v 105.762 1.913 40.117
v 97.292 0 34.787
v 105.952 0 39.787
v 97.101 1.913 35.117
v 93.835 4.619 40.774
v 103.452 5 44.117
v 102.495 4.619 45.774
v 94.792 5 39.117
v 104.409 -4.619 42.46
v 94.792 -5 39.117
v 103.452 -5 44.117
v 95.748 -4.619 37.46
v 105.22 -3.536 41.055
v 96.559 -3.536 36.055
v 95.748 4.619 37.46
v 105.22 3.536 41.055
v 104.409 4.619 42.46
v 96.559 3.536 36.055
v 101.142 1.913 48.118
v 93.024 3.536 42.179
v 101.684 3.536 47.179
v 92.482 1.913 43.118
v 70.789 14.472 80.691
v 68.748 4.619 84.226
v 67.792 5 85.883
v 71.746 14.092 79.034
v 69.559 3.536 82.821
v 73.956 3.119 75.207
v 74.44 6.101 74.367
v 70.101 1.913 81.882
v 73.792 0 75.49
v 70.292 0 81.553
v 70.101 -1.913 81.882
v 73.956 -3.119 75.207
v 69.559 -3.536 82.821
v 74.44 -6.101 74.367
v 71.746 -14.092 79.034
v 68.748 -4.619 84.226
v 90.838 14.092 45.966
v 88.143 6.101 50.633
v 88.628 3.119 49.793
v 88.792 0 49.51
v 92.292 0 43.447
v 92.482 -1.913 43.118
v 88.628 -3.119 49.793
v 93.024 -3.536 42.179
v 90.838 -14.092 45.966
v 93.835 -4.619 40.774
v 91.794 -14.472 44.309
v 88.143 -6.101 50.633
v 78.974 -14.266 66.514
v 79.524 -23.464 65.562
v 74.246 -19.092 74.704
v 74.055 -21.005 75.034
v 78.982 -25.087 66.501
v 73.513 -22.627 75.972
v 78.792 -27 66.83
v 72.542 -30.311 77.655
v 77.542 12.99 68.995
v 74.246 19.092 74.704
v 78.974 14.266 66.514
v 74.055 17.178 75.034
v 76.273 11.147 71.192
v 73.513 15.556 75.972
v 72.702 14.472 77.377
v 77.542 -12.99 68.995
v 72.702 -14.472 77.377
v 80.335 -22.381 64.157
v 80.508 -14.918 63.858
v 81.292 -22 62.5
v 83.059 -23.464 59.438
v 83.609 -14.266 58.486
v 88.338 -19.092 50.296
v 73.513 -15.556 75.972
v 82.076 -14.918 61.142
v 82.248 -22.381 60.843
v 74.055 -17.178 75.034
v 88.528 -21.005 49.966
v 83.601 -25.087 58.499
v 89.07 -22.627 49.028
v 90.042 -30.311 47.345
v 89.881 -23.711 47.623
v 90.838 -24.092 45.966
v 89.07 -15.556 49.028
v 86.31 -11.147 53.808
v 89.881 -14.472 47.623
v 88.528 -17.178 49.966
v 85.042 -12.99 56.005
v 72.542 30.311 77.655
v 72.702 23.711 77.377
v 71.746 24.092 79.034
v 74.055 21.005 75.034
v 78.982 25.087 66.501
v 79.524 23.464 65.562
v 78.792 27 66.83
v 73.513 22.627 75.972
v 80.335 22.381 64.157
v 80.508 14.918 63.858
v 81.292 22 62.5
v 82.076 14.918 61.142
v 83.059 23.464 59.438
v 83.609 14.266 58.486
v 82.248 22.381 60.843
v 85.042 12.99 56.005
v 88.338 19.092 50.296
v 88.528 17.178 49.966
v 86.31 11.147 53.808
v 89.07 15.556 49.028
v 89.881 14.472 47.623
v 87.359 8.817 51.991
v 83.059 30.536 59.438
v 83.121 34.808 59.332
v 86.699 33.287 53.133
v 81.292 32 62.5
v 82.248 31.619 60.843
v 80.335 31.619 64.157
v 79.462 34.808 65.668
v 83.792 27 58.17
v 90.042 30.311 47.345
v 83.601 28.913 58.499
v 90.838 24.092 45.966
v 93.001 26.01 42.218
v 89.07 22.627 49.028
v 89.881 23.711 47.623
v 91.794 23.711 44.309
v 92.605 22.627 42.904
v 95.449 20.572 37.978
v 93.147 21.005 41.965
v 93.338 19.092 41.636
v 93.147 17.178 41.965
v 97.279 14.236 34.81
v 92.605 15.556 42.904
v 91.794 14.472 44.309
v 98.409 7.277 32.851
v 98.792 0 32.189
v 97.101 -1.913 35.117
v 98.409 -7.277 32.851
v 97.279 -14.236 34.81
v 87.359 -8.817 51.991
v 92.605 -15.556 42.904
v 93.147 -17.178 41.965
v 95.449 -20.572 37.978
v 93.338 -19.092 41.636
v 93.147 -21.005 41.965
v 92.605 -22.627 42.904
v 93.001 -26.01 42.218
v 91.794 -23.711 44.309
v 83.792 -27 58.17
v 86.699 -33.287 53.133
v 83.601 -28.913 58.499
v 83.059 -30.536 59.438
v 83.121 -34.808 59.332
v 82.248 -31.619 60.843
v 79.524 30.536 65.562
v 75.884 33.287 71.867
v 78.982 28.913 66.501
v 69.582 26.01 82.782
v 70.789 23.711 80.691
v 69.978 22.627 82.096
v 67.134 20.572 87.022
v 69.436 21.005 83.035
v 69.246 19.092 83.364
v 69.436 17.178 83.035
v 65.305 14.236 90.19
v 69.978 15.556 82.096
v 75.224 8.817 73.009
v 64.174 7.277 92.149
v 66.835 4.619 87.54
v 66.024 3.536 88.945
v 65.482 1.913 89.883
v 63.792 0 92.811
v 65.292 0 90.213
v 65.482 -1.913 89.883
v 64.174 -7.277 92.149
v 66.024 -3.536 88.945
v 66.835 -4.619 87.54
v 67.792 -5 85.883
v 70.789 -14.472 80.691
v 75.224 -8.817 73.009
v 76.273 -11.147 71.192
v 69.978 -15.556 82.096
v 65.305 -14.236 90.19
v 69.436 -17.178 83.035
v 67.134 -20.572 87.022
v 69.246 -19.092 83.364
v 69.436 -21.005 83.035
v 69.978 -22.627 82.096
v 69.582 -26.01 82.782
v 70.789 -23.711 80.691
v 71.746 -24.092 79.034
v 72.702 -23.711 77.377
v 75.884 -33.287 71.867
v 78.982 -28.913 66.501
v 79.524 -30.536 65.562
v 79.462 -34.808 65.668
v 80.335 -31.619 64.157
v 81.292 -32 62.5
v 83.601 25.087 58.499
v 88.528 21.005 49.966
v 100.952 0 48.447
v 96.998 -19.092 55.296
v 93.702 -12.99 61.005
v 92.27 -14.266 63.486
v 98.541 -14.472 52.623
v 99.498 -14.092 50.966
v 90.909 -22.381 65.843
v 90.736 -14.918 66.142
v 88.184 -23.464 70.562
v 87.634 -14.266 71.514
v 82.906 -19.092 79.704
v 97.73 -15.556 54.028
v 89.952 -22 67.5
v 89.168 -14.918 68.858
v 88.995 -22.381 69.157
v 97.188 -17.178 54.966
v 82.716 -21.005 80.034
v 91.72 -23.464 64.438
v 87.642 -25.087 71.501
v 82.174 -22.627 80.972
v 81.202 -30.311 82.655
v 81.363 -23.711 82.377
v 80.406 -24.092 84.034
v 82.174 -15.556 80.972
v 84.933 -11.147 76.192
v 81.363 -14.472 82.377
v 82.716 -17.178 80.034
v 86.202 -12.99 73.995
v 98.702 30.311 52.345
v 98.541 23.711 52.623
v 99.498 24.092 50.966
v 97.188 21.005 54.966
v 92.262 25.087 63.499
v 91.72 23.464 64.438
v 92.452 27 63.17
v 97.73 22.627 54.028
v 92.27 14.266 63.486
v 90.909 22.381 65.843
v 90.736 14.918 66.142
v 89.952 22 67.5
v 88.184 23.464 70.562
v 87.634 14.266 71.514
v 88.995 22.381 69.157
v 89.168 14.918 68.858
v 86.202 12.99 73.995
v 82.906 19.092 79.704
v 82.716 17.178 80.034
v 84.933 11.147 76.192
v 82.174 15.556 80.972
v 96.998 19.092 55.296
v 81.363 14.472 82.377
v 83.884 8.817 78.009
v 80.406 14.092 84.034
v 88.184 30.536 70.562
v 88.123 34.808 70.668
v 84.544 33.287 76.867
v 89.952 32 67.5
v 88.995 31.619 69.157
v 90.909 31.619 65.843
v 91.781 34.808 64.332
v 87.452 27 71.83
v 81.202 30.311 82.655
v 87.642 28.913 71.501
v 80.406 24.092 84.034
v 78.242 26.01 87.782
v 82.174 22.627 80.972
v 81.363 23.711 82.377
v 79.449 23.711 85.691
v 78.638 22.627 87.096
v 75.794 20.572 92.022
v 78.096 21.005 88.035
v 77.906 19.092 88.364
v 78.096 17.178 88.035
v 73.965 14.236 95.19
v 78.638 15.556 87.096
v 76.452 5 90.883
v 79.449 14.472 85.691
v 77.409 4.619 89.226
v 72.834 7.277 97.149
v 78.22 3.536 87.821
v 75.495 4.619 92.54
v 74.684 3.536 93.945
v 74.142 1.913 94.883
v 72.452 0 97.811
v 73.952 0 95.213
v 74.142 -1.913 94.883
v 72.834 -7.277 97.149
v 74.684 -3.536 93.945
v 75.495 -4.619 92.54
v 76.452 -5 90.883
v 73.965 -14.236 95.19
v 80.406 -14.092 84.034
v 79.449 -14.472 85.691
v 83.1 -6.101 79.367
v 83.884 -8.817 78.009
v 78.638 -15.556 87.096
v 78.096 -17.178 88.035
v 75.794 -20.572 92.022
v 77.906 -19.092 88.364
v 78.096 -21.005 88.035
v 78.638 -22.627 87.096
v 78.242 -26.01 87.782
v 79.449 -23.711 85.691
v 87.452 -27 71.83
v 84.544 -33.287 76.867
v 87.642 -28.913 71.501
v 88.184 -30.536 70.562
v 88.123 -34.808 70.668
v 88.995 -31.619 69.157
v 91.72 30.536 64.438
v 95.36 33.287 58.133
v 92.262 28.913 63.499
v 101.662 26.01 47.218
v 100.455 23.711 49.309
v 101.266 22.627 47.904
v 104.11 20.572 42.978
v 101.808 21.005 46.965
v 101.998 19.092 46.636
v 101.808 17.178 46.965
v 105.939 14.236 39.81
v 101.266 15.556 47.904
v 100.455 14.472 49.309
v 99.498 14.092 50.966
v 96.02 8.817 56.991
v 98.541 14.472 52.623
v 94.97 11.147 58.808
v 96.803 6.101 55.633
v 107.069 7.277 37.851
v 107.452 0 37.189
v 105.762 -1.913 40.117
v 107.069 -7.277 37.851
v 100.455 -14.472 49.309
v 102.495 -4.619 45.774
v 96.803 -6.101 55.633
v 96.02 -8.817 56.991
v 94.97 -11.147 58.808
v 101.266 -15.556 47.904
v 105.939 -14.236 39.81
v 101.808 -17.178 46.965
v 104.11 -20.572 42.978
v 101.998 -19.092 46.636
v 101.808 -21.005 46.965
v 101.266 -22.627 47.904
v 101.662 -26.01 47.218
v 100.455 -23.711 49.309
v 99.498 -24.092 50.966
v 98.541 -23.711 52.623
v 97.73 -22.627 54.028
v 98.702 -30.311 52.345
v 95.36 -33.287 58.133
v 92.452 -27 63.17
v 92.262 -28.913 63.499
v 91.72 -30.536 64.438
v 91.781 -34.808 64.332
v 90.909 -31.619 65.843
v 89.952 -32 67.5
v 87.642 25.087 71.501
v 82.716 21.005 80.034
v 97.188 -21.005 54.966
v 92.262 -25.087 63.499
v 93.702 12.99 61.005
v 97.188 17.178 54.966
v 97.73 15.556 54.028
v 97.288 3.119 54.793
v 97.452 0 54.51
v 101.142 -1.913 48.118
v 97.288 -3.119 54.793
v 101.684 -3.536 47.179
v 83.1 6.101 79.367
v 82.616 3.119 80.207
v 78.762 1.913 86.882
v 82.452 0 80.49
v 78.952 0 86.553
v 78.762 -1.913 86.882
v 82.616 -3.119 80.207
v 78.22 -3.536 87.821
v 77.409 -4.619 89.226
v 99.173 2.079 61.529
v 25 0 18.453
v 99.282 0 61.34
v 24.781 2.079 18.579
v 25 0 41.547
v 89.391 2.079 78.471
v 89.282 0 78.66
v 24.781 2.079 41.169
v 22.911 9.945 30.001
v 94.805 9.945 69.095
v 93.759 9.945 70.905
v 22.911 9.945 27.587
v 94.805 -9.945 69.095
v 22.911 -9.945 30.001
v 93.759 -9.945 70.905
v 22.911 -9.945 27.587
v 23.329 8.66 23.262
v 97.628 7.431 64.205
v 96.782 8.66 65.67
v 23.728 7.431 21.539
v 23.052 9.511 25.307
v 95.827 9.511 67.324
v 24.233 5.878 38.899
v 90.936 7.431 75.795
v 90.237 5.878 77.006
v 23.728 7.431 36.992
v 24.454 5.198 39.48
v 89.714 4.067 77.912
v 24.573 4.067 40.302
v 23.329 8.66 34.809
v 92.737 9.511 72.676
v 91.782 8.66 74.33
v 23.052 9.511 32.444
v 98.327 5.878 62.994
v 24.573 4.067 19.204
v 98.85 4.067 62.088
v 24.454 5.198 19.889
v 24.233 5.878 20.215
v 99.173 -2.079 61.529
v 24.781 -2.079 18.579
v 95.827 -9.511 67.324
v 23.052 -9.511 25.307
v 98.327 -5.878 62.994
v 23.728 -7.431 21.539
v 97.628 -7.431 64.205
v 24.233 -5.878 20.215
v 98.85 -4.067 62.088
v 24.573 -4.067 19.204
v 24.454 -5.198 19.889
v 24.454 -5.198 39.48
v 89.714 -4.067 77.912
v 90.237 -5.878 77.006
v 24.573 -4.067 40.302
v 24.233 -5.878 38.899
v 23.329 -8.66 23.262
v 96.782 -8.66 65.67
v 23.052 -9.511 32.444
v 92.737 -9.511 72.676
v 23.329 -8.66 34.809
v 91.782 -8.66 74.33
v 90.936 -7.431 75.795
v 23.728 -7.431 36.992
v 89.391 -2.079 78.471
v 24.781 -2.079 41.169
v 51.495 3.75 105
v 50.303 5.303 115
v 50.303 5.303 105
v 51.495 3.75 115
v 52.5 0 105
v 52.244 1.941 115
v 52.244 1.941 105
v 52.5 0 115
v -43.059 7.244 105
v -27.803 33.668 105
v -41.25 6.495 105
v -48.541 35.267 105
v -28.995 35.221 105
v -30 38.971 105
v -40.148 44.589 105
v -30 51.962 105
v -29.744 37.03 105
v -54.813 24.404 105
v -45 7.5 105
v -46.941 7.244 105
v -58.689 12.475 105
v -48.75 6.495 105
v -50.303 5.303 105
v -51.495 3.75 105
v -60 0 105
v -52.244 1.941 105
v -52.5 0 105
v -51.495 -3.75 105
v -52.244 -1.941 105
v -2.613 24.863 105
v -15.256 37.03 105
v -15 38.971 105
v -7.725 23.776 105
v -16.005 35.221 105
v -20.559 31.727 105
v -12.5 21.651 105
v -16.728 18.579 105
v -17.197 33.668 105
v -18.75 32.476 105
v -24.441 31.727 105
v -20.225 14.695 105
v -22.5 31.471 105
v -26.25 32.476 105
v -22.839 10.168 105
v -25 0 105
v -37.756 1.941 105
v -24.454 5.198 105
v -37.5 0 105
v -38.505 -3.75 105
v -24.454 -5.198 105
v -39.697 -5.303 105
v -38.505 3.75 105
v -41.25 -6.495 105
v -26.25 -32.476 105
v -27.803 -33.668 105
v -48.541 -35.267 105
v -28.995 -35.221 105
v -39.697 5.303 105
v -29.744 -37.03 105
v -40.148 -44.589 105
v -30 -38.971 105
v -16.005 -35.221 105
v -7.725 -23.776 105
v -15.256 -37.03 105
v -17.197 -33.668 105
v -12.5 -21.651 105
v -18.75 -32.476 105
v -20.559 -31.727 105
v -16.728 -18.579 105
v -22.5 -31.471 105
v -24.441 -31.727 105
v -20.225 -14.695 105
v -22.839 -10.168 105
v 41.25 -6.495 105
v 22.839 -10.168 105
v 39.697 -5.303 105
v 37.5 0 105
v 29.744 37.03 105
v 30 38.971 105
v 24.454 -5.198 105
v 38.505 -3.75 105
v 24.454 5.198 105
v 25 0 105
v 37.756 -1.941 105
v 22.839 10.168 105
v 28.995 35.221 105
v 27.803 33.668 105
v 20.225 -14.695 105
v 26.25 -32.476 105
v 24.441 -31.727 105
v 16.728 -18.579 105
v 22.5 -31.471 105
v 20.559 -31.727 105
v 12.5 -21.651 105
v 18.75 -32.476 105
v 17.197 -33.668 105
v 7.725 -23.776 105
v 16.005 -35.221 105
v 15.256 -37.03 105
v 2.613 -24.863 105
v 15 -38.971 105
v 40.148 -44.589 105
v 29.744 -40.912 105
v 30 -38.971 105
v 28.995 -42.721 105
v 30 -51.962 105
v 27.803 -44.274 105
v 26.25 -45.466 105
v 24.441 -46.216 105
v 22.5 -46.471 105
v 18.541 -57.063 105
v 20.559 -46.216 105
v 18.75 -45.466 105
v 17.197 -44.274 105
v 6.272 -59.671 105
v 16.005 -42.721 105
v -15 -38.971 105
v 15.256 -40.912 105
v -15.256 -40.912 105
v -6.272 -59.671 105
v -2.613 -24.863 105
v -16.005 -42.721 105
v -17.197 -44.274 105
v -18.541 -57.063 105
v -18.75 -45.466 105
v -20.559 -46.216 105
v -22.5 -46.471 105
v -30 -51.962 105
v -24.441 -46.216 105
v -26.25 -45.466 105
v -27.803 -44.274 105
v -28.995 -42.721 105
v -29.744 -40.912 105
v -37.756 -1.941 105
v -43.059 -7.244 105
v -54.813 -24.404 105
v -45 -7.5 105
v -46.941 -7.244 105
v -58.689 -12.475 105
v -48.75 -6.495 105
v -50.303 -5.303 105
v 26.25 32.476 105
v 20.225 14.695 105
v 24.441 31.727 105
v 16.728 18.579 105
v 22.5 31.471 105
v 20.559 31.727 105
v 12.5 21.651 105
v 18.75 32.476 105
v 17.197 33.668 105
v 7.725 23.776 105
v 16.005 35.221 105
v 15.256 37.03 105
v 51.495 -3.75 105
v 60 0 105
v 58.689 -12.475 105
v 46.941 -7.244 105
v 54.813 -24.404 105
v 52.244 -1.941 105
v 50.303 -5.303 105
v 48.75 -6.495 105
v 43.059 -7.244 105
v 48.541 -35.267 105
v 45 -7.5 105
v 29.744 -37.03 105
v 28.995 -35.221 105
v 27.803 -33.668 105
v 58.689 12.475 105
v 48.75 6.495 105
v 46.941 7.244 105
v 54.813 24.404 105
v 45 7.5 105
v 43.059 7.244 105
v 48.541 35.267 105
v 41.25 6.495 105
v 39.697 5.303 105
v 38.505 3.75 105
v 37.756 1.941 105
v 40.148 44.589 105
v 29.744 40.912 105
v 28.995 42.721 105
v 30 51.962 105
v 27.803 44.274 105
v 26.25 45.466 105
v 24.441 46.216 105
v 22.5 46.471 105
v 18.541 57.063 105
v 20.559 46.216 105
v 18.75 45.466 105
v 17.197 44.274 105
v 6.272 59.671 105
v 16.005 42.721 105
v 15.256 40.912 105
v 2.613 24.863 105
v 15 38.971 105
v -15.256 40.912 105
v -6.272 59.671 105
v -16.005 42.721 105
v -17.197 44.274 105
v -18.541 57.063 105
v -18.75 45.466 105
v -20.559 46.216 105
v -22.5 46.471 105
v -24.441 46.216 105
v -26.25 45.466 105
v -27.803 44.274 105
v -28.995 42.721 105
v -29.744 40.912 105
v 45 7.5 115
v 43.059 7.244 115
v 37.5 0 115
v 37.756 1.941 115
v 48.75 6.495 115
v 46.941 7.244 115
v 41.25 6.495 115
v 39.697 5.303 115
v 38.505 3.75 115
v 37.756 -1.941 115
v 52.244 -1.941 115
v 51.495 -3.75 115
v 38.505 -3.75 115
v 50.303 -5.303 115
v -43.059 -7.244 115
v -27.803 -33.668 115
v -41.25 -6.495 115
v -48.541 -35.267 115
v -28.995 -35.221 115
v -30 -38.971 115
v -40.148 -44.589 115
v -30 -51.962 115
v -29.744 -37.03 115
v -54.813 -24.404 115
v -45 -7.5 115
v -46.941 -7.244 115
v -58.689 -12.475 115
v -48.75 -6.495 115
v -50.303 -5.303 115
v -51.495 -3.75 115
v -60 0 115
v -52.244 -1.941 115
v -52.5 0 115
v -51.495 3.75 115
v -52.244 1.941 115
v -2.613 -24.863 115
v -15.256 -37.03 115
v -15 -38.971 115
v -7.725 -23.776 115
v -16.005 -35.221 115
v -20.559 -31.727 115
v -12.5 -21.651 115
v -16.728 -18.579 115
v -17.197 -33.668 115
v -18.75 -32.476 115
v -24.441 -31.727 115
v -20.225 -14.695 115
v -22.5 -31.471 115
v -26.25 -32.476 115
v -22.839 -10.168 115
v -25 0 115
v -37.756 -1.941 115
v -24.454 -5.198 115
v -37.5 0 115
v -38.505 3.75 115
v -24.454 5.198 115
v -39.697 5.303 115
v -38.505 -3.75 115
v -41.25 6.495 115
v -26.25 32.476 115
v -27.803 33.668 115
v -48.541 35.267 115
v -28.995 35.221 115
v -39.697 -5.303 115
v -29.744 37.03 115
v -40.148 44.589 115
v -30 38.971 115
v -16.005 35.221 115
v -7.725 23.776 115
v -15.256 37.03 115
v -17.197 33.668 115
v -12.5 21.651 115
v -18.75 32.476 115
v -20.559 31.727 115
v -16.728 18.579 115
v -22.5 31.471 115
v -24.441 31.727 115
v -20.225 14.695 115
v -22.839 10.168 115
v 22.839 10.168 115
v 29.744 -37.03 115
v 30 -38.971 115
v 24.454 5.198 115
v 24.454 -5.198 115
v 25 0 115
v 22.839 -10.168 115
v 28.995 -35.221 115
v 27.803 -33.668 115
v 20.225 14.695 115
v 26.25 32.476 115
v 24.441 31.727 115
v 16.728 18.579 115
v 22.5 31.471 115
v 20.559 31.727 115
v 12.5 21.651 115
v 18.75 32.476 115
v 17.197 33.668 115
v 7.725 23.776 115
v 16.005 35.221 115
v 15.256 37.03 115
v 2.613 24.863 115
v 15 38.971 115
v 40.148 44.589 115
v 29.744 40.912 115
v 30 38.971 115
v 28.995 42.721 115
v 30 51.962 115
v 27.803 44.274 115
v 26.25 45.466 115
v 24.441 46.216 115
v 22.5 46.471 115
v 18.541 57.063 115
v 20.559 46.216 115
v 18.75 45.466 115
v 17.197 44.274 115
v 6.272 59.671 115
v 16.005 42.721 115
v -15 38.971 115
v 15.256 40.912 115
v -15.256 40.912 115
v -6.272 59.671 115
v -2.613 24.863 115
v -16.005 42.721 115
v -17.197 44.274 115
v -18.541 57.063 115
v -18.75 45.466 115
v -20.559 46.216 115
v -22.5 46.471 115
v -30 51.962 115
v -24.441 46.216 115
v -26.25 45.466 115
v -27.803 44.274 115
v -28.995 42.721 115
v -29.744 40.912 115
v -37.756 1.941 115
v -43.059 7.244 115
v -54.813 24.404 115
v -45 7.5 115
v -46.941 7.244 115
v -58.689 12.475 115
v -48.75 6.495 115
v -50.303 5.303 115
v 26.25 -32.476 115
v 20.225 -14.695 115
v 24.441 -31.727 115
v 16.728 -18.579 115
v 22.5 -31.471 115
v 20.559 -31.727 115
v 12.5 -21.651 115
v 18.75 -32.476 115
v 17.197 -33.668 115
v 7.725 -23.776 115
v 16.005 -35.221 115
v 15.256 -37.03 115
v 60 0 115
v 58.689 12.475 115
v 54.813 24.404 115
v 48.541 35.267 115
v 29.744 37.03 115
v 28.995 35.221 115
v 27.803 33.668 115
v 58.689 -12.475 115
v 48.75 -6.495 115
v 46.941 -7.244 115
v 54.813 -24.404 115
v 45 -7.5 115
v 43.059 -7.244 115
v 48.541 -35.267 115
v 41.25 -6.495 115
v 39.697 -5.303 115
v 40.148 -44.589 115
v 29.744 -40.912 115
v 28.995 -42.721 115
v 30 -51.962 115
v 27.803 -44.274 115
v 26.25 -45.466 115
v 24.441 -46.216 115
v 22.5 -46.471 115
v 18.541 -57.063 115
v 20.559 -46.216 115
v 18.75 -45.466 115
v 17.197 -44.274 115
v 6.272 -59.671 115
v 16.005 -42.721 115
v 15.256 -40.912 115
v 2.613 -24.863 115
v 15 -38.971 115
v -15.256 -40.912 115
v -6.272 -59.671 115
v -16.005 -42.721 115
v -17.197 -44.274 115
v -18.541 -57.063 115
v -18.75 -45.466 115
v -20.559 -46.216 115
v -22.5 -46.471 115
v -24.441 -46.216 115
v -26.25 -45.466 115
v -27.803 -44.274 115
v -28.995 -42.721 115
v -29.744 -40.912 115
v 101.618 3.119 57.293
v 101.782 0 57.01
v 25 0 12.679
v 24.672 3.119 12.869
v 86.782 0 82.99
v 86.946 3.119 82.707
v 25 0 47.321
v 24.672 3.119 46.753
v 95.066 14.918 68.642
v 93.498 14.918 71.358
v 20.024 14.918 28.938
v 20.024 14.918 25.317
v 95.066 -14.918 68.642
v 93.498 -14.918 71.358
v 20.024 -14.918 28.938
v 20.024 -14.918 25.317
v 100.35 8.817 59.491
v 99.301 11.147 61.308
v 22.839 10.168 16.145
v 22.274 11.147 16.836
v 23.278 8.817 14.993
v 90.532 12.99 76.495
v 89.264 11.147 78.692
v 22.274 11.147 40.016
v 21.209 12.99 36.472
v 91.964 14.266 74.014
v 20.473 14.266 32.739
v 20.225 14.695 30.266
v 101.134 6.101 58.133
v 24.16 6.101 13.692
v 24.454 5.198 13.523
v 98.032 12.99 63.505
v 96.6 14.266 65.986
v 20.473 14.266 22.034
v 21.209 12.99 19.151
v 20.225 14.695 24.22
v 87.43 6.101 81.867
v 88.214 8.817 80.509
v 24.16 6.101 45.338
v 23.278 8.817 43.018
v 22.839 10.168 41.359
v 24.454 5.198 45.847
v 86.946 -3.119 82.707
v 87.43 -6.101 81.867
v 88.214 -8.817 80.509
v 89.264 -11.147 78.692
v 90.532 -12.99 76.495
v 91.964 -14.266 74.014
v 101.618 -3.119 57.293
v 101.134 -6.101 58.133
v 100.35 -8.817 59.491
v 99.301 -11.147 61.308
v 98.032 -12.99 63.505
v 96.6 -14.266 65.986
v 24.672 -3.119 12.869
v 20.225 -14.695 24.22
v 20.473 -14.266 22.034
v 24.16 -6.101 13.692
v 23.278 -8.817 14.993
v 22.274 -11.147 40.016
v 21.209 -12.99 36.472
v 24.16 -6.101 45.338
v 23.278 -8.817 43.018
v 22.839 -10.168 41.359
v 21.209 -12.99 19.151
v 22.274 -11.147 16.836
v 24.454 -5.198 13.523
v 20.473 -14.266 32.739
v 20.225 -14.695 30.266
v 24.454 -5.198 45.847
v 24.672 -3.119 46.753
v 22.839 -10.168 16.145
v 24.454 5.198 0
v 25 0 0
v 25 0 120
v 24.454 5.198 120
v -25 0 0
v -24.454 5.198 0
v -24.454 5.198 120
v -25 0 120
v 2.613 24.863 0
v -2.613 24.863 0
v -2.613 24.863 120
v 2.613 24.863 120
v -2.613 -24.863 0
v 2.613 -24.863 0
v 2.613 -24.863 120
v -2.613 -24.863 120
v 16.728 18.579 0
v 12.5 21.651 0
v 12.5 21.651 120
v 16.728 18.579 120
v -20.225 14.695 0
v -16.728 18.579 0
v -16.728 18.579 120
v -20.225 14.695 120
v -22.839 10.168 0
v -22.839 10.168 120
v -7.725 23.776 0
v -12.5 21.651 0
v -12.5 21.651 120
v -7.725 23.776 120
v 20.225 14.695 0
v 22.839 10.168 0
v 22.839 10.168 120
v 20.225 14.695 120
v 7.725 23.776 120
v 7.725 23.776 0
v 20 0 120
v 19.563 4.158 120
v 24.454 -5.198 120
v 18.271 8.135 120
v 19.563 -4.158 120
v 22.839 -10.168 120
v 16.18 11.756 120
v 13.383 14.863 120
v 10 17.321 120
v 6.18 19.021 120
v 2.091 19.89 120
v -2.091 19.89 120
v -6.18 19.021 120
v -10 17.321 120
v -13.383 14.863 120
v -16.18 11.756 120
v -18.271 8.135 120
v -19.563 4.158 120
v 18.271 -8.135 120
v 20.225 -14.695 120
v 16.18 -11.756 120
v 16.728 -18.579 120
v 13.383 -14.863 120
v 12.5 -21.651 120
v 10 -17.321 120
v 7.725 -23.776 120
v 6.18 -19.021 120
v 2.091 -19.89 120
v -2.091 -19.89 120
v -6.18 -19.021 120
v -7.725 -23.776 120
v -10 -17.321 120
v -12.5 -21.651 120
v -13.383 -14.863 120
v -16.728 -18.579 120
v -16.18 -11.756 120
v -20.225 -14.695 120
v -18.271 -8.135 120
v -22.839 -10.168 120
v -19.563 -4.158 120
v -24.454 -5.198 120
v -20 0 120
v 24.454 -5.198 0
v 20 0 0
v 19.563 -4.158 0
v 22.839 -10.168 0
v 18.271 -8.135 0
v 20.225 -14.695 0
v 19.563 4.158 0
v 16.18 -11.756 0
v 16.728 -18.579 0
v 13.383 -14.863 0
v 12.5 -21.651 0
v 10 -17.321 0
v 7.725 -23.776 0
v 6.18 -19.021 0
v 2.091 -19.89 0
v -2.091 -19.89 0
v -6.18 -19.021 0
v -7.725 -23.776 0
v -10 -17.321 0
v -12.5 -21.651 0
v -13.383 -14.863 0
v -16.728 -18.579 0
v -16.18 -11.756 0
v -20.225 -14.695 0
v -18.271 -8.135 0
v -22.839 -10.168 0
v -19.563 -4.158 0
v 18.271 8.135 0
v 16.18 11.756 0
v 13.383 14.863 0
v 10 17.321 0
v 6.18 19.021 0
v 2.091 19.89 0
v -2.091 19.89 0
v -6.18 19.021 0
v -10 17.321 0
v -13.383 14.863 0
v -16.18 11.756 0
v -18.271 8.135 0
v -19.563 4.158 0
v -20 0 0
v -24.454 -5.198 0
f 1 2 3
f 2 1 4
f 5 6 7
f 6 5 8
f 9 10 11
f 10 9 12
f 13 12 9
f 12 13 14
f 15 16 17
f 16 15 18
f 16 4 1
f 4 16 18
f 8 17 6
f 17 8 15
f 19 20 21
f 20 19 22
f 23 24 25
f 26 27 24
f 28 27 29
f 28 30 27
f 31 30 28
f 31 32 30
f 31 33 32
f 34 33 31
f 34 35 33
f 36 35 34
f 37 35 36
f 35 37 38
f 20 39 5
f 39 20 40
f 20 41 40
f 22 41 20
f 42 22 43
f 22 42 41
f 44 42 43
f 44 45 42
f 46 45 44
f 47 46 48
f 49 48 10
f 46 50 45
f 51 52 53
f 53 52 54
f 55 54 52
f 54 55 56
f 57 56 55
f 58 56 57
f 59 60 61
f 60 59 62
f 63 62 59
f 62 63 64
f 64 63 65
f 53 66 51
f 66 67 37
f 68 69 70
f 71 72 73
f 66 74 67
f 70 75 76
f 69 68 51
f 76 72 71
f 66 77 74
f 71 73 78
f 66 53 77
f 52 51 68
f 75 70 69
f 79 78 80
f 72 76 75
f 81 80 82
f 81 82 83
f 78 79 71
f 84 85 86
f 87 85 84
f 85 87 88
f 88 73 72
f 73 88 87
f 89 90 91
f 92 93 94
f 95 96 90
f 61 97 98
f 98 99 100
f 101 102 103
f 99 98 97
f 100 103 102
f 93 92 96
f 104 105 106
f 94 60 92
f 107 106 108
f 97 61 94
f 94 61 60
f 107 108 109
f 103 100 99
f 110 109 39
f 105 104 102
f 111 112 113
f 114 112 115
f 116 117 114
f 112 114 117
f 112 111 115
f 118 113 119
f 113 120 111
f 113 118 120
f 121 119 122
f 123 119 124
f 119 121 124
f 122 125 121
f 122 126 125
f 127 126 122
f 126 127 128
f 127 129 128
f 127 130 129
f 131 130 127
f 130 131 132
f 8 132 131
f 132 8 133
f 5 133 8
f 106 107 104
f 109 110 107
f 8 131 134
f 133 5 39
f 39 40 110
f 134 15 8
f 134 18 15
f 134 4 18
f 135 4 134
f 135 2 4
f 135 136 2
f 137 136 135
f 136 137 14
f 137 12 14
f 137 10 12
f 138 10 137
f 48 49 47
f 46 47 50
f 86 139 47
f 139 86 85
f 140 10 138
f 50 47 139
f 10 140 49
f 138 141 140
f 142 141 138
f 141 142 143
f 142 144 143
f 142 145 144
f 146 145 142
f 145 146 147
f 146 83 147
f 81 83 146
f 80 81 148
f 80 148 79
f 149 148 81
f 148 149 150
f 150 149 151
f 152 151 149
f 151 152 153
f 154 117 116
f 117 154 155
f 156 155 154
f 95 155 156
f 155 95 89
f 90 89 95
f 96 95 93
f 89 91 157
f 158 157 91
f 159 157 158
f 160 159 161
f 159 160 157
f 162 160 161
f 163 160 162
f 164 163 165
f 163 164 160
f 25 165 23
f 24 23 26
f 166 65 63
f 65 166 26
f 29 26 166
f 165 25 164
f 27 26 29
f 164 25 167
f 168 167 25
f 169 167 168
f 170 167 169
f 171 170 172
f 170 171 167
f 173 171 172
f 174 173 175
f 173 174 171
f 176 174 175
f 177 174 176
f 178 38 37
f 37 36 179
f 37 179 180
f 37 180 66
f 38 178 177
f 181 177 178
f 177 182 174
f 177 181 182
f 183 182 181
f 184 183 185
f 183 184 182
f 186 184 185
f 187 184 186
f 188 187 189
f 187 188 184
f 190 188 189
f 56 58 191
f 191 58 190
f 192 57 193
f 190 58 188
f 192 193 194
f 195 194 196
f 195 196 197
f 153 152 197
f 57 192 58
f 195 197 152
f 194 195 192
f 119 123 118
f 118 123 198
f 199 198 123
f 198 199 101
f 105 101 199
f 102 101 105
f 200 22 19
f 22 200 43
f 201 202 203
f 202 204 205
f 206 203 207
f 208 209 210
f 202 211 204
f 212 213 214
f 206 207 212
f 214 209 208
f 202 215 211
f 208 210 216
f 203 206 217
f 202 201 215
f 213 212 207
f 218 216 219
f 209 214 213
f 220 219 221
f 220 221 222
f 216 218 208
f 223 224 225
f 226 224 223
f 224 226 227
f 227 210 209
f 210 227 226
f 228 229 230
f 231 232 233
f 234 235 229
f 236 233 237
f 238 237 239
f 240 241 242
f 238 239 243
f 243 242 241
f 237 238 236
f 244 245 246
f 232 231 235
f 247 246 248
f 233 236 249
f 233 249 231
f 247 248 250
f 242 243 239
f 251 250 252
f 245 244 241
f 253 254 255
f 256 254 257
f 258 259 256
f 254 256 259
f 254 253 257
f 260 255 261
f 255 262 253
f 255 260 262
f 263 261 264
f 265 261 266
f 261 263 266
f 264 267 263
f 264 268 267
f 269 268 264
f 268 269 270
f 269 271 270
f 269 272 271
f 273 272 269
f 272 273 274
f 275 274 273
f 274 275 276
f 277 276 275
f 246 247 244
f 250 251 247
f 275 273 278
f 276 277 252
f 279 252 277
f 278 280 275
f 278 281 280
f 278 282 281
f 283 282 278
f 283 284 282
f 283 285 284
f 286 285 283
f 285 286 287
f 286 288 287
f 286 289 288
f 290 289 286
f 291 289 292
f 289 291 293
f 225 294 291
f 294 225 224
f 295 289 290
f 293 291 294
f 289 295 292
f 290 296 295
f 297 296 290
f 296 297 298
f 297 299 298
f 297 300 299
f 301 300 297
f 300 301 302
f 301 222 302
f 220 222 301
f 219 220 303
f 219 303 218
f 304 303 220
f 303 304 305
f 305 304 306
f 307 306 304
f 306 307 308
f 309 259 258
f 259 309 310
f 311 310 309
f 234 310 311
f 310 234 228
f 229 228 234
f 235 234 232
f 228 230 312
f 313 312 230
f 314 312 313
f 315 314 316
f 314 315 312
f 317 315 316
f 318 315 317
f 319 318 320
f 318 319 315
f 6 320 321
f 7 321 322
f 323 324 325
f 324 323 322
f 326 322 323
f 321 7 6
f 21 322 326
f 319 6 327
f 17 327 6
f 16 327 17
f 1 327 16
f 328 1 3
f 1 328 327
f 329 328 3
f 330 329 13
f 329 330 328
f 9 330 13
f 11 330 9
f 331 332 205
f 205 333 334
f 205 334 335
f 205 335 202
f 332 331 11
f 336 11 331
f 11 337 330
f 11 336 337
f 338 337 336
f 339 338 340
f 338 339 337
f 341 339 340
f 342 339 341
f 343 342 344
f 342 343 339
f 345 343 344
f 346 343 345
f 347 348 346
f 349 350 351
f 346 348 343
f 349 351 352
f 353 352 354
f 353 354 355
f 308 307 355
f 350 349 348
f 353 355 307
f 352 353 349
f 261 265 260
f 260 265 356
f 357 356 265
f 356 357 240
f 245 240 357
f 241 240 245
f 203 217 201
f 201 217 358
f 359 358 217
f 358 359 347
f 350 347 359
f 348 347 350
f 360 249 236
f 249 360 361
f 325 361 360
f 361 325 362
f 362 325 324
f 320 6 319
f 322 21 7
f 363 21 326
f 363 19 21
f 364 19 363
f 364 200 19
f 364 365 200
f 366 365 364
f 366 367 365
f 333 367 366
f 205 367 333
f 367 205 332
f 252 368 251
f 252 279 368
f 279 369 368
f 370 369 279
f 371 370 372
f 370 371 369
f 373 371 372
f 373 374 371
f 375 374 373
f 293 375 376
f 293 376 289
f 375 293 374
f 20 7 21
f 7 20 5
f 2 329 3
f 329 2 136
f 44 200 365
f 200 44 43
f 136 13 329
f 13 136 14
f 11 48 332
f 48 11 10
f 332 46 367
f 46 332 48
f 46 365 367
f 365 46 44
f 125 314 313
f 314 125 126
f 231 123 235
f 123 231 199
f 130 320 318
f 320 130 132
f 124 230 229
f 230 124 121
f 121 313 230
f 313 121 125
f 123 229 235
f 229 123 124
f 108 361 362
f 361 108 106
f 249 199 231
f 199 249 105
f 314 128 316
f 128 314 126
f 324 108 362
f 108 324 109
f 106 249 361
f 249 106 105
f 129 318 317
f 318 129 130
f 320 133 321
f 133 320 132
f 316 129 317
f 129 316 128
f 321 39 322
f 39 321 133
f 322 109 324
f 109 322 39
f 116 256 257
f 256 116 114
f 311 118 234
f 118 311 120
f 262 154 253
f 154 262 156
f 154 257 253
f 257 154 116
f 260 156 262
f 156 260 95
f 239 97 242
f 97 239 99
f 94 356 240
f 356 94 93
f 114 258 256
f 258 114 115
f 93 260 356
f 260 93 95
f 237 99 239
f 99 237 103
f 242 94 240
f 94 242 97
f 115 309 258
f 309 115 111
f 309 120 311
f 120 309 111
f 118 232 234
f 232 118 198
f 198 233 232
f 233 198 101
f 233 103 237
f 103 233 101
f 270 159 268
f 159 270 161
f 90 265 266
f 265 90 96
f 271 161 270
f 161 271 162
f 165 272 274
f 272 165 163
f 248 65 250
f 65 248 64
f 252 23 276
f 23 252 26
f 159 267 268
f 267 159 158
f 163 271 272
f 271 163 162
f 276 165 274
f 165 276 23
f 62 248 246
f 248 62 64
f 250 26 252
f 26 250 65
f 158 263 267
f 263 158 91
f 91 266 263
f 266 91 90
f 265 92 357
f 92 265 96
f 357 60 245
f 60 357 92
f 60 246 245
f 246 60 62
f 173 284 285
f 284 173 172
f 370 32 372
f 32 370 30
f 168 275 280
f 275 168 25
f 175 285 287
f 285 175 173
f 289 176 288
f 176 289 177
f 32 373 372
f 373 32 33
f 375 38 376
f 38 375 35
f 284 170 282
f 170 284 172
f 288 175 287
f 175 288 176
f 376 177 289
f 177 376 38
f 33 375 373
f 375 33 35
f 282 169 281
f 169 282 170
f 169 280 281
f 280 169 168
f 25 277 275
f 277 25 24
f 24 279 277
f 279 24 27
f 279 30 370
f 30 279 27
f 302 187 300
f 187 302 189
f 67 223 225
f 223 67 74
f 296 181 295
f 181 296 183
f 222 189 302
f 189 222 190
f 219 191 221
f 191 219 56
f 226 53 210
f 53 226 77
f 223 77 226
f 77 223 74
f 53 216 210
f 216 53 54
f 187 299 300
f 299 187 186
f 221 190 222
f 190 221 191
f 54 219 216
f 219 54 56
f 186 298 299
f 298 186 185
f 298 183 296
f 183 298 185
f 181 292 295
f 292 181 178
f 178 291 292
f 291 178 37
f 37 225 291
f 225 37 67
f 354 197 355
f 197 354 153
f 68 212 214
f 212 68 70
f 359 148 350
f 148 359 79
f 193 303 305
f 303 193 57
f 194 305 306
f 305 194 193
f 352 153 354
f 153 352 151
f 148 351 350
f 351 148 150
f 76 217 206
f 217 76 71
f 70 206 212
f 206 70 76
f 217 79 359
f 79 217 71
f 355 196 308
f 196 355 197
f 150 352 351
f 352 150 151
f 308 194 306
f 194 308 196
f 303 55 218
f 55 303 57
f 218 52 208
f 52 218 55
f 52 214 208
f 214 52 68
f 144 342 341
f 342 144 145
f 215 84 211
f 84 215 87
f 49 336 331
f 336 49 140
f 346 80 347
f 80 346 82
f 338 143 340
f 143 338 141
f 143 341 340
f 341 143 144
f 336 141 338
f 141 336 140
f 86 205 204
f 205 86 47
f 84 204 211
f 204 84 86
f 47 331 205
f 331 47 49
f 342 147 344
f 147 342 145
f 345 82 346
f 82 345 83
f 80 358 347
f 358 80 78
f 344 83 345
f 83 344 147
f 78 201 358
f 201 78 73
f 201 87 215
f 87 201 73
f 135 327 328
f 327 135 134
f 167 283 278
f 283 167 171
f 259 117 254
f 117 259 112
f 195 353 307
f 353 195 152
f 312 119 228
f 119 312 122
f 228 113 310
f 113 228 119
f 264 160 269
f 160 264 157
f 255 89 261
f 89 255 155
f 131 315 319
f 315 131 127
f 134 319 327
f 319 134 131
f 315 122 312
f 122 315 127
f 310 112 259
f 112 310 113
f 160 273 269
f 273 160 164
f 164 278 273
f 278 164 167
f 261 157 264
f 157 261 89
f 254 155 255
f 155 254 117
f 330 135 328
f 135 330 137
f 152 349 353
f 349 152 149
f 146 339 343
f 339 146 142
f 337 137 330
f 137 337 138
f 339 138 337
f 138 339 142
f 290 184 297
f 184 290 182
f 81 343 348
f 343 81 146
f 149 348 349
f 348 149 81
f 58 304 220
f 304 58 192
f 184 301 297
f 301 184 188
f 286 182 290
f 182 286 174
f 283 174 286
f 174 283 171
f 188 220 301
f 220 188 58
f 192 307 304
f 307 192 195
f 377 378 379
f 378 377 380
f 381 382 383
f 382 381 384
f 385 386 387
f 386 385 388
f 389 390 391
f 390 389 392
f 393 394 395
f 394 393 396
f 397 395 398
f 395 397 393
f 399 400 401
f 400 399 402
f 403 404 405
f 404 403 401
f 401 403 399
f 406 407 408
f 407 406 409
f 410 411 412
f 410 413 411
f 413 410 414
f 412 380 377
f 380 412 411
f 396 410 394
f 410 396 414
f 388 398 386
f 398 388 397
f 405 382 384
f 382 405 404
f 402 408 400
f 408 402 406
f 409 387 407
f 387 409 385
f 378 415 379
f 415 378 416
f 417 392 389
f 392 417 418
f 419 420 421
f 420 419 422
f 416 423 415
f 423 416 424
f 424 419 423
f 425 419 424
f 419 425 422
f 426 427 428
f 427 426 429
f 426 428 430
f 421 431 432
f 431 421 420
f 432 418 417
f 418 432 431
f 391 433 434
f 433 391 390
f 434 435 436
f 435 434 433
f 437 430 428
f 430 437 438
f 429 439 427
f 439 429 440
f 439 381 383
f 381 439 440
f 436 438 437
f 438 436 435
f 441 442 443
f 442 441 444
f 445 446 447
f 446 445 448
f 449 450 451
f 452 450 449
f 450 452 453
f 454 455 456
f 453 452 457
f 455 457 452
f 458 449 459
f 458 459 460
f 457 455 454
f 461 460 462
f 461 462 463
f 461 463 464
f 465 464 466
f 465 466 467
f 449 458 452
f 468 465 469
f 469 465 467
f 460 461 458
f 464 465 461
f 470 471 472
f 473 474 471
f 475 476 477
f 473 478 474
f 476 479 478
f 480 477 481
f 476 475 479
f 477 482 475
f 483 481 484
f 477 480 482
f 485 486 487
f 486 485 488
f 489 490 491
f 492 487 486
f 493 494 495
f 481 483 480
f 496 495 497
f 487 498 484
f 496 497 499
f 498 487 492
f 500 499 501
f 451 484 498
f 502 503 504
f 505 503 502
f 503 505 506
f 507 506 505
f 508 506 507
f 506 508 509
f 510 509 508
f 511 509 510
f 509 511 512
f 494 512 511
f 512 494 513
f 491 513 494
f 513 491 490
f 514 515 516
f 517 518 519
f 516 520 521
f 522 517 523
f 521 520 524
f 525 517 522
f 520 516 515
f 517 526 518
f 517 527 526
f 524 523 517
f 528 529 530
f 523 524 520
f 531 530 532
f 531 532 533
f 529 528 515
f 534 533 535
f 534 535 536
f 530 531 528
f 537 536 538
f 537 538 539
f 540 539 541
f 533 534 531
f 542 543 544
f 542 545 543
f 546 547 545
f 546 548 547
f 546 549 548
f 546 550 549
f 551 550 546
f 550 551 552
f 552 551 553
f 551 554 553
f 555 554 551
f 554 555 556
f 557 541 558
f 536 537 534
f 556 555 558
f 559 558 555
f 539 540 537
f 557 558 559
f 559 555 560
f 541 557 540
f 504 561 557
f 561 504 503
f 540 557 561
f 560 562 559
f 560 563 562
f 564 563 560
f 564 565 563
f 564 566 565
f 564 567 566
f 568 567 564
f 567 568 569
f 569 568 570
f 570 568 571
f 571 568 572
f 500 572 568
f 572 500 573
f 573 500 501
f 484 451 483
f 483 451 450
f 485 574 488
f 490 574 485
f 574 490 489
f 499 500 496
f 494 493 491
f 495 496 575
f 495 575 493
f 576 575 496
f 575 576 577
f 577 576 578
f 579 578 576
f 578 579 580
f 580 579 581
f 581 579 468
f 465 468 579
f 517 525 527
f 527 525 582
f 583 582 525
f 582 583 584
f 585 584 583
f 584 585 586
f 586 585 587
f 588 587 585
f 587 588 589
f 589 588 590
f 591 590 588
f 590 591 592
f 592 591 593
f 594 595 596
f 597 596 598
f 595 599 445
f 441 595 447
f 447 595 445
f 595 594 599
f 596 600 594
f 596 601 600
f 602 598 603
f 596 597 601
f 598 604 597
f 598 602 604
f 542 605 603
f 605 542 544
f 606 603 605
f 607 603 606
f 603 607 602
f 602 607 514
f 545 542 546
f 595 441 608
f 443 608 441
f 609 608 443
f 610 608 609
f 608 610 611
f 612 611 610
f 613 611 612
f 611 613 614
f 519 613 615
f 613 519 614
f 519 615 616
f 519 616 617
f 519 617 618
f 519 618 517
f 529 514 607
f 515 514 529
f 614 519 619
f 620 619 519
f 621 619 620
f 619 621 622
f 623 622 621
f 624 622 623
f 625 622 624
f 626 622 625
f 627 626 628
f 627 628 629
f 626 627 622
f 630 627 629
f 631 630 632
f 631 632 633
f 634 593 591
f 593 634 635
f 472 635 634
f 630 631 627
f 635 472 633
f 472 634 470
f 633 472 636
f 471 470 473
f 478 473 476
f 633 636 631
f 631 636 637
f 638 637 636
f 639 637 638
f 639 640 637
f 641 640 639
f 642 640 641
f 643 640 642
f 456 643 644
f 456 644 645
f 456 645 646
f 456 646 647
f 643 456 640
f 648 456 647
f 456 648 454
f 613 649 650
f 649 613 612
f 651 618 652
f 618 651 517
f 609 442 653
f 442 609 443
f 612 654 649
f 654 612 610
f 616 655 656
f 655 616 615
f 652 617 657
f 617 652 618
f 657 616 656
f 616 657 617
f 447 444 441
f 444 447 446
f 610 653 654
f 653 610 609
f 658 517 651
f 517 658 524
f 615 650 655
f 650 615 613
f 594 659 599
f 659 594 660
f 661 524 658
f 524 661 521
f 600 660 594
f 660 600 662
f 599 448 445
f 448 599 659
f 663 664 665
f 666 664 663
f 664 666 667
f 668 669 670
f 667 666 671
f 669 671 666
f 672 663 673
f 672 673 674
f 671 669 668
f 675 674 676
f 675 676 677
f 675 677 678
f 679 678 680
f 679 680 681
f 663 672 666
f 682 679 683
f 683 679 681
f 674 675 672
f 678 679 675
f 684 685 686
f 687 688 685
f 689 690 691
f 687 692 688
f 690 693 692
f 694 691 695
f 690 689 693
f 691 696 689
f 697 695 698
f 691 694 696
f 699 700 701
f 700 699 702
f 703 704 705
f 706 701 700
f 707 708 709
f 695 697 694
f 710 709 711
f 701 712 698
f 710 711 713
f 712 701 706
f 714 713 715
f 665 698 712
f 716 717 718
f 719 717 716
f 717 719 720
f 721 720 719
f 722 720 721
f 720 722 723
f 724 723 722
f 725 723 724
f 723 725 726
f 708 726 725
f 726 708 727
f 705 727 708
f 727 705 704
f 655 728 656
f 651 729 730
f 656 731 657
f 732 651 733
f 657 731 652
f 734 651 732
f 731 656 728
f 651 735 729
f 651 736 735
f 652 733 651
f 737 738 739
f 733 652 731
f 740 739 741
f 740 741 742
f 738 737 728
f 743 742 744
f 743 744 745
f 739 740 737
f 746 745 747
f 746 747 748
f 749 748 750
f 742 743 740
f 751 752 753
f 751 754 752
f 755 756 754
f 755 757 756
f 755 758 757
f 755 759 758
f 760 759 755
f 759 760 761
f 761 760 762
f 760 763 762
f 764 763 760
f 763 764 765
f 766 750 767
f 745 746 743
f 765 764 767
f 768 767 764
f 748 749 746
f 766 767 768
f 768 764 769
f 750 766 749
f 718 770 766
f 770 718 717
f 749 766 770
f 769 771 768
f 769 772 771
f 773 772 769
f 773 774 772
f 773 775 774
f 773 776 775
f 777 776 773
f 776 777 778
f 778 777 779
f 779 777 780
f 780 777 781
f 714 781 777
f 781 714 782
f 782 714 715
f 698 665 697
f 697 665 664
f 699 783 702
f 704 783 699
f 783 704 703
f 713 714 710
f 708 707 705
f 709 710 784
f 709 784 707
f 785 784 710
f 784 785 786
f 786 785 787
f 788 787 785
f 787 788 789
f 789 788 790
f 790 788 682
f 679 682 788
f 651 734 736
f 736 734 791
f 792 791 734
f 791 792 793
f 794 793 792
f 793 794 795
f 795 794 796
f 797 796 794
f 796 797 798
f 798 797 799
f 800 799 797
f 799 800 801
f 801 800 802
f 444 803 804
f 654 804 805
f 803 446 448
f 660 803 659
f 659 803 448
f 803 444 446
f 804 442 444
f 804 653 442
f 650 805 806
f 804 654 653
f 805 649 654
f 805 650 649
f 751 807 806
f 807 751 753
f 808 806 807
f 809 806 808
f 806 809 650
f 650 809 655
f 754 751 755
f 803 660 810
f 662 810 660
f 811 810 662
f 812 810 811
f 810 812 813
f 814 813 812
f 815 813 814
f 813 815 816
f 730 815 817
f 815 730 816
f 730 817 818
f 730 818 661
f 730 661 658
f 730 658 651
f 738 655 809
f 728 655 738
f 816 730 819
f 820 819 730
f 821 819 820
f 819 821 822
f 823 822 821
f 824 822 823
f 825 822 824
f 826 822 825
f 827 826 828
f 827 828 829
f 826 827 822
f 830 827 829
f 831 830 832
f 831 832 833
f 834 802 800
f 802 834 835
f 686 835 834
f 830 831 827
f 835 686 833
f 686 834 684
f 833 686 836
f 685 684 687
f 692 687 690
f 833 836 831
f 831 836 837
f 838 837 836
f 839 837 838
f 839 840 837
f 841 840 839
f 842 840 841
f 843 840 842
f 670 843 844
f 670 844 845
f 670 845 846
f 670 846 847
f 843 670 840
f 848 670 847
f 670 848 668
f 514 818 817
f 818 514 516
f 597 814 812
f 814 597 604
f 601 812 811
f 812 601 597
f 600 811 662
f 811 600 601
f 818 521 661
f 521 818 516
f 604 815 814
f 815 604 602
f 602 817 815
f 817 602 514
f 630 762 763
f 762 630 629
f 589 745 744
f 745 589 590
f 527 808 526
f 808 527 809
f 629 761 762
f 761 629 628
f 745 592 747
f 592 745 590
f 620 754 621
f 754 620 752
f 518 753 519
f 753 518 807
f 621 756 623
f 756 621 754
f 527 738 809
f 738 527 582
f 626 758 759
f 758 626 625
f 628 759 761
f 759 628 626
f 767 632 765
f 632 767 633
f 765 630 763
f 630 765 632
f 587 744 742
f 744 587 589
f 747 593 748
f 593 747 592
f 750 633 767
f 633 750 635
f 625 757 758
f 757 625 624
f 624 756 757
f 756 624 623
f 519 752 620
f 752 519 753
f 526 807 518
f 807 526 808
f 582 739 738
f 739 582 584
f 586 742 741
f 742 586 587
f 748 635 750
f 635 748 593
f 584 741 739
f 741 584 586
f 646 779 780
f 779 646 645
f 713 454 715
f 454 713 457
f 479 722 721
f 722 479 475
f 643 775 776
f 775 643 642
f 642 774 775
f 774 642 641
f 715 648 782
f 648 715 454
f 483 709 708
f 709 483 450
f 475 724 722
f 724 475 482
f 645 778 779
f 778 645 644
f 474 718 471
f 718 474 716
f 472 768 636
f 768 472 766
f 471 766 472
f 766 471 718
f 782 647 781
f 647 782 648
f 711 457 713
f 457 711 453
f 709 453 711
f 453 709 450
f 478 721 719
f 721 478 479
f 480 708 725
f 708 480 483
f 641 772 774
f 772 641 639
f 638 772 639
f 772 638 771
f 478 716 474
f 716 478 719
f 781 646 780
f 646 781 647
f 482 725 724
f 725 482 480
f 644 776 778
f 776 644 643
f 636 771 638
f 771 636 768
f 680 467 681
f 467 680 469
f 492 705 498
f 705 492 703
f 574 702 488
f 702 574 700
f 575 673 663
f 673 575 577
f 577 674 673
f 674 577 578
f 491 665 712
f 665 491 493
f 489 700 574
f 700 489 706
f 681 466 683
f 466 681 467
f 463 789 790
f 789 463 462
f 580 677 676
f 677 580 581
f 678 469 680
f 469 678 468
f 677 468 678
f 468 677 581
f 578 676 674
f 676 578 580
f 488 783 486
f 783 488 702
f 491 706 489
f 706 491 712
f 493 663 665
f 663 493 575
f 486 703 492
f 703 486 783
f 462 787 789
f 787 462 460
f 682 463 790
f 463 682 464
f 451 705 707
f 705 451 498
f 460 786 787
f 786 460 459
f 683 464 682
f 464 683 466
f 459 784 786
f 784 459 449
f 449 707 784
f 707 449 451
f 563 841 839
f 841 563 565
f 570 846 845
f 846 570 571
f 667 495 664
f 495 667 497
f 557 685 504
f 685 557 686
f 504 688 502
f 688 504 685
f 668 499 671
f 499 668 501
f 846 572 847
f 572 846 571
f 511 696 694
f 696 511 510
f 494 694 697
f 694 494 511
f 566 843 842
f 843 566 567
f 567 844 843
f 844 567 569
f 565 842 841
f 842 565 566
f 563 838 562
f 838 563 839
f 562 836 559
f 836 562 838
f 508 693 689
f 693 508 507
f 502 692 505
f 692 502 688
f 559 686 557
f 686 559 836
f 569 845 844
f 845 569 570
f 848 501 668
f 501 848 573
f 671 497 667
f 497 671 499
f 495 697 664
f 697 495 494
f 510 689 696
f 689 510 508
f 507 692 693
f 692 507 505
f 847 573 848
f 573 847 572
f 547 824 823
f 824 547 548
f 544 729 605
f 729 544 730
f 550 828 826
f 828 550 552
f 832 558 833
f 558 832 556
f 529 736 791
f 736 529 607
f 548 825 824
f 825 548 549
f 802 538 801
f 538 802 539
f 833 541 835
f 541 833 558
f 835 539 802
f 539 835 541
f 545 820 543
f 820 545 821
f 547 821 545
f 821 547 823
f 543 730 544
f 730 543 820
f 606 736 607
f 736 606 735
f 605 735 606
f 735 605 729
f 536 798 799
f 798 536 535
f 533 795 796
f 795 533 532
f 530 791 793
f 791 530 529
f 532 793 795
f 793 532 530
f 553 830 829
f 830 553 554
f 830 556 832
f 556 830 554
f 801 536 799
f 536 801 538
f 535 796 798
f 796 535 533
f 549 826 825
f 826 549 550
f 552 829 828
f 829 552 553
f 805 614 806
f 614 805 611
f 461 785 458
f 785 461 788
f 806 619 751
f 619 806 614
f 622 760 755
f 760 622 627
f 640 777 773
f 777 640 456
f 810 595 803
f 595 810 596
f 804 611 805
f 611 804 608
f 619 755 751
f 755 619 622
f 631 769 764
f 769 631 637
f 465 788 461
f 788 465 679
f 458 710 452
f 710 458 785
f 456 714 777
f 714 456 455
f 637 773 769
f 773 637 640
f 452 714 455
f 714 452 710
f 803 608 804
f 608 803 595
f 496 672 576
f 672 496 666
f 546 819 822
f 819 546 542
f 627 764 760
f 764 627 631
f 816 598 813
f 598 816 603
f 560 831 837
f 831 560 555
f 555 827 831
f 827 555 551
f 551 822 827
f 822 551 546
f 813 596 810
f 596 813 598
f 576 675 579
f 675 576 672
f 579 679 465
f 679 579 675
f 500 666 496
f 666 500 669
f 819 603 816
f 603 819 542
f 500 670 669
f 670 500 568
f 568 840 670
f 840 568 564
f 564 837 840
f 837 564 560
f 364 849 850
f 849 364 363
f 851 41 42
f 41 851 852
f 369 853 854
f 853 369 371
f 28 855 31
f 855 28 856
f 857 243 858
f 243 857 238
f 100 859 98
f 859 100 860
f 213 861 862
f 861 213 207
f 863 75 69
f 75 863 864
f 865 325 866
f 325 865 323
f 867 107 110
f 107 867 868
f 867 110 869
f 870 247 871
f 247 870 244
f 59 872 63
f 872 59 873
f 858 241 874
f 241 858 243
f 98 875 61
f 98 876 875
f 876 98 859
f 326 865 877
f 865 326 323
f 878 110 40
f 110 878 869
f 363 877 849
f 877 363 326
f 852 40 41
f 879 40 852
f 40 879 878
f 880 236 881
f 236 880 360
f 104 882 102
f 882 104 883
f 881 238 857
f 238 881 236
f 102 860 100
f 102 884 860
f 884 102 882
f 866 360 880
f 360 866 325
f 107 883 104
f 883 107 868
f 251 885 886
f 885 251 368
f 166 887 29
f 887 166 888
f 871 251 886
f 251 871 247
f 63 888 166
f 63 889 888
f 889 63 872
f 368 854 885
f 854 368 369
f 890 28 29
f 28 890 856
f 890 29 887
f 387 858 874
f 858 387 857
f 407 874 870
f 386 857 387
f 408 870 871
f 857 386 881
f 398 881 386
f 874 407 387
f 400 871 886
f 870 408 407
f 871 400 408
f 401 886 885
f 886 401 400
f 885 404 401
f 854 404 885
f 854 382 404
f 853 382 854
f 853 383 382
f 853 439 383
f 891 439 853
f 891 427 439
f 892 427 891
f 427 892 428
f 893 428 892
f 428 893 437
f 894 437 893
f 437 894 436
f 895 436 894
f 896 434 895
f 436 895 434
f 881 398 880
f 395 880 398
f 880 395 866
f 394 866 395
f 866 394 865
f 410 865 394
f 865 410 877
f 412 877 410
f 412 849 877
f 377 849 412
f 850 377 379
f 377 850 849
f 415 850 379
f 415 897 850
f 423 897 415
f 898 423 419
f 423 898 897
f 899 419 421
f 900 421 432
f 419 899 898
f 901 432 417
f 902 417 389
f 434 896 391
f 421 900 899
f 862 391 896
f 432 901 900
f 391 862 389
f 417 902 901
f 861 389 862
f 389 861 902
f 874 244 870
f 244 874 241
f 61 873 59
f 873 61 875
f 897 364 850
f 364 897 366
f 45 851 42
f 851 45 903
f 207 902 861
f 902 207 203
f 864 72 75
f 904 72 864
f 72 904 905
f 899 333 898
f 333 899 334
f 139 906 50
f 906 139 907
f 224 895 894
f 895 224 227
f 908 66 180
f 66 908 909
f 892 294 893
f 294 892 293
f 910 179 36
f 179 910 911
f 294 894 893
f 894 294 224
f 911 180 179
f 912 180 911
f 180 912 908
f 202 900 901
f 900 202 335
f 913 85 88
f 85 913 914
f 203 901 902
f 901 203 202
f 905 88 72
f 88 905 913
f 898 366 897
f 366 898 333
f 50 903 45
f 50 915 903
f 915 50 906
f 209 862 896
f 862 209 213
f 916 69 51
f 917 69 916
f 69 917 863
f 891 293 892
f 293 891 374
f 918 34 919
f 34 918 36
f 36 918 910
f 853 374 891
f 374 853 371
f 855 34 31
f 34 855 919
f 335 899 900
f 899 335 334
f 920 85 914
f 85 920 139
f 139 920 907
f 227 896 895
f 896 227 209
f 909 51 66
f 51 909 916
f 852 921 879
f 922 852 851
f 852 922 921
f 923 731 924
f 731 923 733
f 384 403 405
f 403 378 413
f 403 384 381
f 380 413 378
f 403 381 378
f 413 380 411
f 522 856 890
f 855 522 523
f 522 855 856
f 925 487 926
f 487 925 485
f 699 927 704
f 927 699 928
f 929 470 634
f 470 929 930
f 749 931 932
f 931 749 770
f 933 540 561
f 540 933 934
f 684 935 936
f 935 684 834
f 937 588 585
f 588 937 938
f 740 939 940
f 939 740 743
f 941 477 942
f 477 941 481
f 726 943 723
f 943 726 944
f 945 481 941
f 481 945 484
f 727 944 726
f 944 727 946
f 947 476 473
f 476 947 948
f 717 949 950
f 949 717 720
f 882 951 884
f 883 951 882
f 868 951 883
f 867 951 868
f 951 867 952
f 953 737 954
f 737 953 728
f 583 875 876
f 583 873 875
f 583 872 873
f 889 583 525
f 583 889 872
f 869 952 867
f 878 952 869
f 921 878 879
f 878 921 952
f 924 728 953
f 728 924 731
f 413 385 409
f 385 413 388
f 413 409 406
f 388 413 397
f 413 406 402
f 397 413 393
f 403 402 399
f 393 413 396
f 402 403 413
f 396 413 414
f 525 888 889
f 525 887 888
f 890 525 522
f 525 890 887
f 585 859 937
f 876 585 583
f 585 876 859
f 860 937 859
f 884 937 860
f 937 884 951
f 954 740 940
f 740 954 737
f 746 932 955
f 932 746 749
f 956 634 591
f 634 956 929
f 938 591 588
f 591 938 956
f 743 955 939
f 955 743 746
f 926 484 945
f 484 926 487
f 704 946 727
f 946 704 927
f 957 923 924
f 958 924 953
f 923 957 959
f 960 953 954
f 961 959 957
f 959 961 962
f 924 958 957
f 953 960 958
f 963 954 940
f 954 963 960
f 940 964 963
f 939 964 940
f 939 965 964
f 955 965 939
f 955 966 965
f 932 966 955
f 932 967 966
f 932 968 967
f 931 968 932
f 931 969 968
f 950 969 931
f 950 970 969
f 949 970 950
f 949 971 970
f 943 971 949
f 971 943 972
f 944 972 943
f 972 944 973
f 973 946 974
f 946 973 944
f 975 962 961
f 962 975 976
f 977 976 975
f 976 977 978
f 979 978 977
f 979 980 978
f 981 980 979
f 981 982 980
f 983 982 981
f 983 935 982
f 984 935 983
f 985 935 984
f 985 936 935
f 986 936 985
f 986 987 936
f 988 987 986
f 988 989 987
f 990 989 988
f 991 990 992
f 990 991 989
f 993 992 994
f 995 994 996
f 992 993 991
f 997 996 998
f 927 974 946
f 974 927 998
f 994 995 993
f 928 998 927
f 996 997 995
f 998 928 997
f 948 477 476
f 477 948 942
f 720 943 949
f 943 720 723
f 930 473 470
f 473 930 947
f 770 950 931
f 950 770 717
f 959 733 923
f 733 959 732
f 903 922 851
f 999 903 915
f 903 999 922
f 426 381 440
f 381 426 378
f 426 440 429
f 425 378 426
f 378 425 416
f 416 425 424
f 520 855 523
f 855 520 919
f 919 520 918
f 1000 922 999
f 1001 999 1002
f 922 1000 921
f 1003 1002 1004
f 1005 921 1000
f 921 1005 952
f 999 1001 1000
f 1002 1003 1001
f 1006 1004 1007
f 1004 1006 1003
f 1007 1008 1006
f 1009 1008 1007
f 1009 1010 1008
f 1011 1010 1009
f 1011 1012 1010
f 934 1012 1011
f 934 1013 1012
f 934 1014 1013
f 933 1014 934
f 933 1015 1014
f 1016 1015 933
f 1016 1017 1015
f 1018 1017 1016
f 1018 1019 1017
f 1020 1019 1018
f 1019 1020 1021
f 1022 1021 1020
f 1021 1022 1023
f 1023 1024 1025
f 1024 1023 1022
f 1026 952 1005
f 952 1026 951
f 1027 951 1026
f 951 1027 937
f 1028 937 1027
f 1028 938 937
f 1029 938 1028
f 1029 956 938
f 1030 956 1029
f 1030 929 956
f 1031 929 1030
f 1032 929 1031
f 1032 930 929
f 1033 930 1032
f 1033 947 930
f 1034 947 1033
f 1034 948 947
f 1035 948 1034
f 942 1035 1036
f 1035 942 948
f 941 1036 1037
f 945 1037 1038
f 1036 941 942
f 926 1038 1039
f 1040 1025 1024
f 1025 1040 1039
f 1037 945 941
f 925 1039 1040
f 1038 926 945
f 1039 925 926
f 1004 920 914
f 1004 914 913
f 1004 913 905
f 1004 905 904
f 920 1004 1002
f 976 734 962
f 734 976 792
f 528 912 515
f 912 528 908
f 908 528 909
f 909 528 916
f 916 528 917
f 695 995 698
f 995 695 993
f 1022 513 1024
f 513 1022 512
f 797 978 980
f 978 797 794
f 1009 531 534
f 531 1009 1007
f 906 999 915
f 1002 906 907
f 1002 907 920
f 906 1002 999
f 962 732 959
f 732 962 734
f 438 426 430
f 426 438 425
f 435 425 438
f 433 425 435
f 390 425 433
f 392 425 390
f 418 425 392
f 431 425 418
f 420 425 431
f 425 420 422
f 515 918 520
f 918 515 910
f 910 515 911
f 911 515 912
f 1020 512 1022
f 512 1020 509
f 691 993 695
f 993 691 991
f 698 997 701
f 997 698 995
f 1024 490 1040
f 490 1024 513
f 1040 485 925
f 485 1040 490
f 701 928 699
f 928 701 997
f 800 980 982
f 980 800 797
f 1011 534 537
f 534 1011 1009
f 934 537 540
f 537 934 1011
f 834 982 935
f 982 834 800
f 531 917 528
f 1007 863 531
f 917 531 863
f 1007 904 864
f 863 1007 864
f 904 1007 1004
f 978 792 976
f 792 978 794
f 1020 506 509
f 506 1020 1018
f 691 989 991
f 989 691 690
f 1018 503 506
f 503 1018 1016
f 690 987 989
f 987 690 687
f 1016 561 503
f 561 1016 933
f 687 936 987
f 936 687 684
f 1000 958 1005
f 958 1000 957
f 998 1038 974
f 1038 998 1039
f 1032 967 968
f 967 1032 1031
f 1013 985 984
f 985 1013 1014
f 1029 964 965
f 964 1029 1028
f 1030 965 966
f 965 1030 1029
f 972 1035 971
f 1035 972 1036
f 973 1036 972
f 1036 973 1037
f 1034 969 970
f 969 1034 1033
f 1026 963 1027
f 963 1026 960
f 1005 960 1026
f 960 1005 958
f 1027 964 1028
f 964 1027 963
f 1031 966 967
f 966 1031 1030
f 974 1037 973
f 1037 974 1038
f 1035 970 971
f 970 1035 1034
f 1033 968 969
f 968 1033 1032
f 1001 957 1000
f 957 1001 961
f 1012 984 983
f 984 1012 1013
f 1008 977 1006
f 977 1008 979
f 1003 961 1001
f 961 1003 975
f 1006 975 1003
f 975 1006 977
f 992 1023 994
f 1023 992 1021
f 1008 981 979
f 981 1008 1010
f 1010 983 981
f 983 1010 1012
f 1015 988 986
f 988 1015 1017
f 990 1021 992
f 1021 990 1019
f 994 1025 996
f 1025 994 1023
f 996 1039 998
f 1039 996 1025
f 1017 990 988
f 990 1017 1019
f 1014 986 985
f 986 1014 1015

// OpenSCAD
// ex_198
// author: Xiaoqi Zhao
// date:2022-12-08

module plate_with_holes(r_outer, r_inner, r_middle, r_hole, numbers_hole, thickness) {
    difference() {
        cylinder(thickness, r_outer, r_outer);
        cylinder(thickness, r_inner, r_inner);
        for (i=[0:360/numbers_hole:(360-360/numbers_hole)]) {
            rotate([0,0,i])
            translate([r_middle,0,0])
            cylinder(thickness, r_hole, r_hole);
        }
    }
}

difference() {
    union() {
        translate([50/2-30/tan(30),0,0])
        rotate([0,60,0])
        translate([0,0,50])
        difference() {
            cylinder(30/sin(30)+80-50,30/2,30/2);
            cylinder(30/sin(30)+80-50,20/2,20/2);
        }

        translate([50/2-30/tan(30),0,0])
        rotate([0,60,0])
        translate([0,0,30/sin(30)+80-15])
            plate_with_holes(70/2, 20/2, 54/2, 10/2, 8, 10);

        cylinder(120,50/2,50/2);

        translate([0,0,120-15])
            plate_with_holes(120/2, 40/2, 90/2, 15/2, 6, 10);
    }
    
    cylinder(120,40/2,40/2);
}
